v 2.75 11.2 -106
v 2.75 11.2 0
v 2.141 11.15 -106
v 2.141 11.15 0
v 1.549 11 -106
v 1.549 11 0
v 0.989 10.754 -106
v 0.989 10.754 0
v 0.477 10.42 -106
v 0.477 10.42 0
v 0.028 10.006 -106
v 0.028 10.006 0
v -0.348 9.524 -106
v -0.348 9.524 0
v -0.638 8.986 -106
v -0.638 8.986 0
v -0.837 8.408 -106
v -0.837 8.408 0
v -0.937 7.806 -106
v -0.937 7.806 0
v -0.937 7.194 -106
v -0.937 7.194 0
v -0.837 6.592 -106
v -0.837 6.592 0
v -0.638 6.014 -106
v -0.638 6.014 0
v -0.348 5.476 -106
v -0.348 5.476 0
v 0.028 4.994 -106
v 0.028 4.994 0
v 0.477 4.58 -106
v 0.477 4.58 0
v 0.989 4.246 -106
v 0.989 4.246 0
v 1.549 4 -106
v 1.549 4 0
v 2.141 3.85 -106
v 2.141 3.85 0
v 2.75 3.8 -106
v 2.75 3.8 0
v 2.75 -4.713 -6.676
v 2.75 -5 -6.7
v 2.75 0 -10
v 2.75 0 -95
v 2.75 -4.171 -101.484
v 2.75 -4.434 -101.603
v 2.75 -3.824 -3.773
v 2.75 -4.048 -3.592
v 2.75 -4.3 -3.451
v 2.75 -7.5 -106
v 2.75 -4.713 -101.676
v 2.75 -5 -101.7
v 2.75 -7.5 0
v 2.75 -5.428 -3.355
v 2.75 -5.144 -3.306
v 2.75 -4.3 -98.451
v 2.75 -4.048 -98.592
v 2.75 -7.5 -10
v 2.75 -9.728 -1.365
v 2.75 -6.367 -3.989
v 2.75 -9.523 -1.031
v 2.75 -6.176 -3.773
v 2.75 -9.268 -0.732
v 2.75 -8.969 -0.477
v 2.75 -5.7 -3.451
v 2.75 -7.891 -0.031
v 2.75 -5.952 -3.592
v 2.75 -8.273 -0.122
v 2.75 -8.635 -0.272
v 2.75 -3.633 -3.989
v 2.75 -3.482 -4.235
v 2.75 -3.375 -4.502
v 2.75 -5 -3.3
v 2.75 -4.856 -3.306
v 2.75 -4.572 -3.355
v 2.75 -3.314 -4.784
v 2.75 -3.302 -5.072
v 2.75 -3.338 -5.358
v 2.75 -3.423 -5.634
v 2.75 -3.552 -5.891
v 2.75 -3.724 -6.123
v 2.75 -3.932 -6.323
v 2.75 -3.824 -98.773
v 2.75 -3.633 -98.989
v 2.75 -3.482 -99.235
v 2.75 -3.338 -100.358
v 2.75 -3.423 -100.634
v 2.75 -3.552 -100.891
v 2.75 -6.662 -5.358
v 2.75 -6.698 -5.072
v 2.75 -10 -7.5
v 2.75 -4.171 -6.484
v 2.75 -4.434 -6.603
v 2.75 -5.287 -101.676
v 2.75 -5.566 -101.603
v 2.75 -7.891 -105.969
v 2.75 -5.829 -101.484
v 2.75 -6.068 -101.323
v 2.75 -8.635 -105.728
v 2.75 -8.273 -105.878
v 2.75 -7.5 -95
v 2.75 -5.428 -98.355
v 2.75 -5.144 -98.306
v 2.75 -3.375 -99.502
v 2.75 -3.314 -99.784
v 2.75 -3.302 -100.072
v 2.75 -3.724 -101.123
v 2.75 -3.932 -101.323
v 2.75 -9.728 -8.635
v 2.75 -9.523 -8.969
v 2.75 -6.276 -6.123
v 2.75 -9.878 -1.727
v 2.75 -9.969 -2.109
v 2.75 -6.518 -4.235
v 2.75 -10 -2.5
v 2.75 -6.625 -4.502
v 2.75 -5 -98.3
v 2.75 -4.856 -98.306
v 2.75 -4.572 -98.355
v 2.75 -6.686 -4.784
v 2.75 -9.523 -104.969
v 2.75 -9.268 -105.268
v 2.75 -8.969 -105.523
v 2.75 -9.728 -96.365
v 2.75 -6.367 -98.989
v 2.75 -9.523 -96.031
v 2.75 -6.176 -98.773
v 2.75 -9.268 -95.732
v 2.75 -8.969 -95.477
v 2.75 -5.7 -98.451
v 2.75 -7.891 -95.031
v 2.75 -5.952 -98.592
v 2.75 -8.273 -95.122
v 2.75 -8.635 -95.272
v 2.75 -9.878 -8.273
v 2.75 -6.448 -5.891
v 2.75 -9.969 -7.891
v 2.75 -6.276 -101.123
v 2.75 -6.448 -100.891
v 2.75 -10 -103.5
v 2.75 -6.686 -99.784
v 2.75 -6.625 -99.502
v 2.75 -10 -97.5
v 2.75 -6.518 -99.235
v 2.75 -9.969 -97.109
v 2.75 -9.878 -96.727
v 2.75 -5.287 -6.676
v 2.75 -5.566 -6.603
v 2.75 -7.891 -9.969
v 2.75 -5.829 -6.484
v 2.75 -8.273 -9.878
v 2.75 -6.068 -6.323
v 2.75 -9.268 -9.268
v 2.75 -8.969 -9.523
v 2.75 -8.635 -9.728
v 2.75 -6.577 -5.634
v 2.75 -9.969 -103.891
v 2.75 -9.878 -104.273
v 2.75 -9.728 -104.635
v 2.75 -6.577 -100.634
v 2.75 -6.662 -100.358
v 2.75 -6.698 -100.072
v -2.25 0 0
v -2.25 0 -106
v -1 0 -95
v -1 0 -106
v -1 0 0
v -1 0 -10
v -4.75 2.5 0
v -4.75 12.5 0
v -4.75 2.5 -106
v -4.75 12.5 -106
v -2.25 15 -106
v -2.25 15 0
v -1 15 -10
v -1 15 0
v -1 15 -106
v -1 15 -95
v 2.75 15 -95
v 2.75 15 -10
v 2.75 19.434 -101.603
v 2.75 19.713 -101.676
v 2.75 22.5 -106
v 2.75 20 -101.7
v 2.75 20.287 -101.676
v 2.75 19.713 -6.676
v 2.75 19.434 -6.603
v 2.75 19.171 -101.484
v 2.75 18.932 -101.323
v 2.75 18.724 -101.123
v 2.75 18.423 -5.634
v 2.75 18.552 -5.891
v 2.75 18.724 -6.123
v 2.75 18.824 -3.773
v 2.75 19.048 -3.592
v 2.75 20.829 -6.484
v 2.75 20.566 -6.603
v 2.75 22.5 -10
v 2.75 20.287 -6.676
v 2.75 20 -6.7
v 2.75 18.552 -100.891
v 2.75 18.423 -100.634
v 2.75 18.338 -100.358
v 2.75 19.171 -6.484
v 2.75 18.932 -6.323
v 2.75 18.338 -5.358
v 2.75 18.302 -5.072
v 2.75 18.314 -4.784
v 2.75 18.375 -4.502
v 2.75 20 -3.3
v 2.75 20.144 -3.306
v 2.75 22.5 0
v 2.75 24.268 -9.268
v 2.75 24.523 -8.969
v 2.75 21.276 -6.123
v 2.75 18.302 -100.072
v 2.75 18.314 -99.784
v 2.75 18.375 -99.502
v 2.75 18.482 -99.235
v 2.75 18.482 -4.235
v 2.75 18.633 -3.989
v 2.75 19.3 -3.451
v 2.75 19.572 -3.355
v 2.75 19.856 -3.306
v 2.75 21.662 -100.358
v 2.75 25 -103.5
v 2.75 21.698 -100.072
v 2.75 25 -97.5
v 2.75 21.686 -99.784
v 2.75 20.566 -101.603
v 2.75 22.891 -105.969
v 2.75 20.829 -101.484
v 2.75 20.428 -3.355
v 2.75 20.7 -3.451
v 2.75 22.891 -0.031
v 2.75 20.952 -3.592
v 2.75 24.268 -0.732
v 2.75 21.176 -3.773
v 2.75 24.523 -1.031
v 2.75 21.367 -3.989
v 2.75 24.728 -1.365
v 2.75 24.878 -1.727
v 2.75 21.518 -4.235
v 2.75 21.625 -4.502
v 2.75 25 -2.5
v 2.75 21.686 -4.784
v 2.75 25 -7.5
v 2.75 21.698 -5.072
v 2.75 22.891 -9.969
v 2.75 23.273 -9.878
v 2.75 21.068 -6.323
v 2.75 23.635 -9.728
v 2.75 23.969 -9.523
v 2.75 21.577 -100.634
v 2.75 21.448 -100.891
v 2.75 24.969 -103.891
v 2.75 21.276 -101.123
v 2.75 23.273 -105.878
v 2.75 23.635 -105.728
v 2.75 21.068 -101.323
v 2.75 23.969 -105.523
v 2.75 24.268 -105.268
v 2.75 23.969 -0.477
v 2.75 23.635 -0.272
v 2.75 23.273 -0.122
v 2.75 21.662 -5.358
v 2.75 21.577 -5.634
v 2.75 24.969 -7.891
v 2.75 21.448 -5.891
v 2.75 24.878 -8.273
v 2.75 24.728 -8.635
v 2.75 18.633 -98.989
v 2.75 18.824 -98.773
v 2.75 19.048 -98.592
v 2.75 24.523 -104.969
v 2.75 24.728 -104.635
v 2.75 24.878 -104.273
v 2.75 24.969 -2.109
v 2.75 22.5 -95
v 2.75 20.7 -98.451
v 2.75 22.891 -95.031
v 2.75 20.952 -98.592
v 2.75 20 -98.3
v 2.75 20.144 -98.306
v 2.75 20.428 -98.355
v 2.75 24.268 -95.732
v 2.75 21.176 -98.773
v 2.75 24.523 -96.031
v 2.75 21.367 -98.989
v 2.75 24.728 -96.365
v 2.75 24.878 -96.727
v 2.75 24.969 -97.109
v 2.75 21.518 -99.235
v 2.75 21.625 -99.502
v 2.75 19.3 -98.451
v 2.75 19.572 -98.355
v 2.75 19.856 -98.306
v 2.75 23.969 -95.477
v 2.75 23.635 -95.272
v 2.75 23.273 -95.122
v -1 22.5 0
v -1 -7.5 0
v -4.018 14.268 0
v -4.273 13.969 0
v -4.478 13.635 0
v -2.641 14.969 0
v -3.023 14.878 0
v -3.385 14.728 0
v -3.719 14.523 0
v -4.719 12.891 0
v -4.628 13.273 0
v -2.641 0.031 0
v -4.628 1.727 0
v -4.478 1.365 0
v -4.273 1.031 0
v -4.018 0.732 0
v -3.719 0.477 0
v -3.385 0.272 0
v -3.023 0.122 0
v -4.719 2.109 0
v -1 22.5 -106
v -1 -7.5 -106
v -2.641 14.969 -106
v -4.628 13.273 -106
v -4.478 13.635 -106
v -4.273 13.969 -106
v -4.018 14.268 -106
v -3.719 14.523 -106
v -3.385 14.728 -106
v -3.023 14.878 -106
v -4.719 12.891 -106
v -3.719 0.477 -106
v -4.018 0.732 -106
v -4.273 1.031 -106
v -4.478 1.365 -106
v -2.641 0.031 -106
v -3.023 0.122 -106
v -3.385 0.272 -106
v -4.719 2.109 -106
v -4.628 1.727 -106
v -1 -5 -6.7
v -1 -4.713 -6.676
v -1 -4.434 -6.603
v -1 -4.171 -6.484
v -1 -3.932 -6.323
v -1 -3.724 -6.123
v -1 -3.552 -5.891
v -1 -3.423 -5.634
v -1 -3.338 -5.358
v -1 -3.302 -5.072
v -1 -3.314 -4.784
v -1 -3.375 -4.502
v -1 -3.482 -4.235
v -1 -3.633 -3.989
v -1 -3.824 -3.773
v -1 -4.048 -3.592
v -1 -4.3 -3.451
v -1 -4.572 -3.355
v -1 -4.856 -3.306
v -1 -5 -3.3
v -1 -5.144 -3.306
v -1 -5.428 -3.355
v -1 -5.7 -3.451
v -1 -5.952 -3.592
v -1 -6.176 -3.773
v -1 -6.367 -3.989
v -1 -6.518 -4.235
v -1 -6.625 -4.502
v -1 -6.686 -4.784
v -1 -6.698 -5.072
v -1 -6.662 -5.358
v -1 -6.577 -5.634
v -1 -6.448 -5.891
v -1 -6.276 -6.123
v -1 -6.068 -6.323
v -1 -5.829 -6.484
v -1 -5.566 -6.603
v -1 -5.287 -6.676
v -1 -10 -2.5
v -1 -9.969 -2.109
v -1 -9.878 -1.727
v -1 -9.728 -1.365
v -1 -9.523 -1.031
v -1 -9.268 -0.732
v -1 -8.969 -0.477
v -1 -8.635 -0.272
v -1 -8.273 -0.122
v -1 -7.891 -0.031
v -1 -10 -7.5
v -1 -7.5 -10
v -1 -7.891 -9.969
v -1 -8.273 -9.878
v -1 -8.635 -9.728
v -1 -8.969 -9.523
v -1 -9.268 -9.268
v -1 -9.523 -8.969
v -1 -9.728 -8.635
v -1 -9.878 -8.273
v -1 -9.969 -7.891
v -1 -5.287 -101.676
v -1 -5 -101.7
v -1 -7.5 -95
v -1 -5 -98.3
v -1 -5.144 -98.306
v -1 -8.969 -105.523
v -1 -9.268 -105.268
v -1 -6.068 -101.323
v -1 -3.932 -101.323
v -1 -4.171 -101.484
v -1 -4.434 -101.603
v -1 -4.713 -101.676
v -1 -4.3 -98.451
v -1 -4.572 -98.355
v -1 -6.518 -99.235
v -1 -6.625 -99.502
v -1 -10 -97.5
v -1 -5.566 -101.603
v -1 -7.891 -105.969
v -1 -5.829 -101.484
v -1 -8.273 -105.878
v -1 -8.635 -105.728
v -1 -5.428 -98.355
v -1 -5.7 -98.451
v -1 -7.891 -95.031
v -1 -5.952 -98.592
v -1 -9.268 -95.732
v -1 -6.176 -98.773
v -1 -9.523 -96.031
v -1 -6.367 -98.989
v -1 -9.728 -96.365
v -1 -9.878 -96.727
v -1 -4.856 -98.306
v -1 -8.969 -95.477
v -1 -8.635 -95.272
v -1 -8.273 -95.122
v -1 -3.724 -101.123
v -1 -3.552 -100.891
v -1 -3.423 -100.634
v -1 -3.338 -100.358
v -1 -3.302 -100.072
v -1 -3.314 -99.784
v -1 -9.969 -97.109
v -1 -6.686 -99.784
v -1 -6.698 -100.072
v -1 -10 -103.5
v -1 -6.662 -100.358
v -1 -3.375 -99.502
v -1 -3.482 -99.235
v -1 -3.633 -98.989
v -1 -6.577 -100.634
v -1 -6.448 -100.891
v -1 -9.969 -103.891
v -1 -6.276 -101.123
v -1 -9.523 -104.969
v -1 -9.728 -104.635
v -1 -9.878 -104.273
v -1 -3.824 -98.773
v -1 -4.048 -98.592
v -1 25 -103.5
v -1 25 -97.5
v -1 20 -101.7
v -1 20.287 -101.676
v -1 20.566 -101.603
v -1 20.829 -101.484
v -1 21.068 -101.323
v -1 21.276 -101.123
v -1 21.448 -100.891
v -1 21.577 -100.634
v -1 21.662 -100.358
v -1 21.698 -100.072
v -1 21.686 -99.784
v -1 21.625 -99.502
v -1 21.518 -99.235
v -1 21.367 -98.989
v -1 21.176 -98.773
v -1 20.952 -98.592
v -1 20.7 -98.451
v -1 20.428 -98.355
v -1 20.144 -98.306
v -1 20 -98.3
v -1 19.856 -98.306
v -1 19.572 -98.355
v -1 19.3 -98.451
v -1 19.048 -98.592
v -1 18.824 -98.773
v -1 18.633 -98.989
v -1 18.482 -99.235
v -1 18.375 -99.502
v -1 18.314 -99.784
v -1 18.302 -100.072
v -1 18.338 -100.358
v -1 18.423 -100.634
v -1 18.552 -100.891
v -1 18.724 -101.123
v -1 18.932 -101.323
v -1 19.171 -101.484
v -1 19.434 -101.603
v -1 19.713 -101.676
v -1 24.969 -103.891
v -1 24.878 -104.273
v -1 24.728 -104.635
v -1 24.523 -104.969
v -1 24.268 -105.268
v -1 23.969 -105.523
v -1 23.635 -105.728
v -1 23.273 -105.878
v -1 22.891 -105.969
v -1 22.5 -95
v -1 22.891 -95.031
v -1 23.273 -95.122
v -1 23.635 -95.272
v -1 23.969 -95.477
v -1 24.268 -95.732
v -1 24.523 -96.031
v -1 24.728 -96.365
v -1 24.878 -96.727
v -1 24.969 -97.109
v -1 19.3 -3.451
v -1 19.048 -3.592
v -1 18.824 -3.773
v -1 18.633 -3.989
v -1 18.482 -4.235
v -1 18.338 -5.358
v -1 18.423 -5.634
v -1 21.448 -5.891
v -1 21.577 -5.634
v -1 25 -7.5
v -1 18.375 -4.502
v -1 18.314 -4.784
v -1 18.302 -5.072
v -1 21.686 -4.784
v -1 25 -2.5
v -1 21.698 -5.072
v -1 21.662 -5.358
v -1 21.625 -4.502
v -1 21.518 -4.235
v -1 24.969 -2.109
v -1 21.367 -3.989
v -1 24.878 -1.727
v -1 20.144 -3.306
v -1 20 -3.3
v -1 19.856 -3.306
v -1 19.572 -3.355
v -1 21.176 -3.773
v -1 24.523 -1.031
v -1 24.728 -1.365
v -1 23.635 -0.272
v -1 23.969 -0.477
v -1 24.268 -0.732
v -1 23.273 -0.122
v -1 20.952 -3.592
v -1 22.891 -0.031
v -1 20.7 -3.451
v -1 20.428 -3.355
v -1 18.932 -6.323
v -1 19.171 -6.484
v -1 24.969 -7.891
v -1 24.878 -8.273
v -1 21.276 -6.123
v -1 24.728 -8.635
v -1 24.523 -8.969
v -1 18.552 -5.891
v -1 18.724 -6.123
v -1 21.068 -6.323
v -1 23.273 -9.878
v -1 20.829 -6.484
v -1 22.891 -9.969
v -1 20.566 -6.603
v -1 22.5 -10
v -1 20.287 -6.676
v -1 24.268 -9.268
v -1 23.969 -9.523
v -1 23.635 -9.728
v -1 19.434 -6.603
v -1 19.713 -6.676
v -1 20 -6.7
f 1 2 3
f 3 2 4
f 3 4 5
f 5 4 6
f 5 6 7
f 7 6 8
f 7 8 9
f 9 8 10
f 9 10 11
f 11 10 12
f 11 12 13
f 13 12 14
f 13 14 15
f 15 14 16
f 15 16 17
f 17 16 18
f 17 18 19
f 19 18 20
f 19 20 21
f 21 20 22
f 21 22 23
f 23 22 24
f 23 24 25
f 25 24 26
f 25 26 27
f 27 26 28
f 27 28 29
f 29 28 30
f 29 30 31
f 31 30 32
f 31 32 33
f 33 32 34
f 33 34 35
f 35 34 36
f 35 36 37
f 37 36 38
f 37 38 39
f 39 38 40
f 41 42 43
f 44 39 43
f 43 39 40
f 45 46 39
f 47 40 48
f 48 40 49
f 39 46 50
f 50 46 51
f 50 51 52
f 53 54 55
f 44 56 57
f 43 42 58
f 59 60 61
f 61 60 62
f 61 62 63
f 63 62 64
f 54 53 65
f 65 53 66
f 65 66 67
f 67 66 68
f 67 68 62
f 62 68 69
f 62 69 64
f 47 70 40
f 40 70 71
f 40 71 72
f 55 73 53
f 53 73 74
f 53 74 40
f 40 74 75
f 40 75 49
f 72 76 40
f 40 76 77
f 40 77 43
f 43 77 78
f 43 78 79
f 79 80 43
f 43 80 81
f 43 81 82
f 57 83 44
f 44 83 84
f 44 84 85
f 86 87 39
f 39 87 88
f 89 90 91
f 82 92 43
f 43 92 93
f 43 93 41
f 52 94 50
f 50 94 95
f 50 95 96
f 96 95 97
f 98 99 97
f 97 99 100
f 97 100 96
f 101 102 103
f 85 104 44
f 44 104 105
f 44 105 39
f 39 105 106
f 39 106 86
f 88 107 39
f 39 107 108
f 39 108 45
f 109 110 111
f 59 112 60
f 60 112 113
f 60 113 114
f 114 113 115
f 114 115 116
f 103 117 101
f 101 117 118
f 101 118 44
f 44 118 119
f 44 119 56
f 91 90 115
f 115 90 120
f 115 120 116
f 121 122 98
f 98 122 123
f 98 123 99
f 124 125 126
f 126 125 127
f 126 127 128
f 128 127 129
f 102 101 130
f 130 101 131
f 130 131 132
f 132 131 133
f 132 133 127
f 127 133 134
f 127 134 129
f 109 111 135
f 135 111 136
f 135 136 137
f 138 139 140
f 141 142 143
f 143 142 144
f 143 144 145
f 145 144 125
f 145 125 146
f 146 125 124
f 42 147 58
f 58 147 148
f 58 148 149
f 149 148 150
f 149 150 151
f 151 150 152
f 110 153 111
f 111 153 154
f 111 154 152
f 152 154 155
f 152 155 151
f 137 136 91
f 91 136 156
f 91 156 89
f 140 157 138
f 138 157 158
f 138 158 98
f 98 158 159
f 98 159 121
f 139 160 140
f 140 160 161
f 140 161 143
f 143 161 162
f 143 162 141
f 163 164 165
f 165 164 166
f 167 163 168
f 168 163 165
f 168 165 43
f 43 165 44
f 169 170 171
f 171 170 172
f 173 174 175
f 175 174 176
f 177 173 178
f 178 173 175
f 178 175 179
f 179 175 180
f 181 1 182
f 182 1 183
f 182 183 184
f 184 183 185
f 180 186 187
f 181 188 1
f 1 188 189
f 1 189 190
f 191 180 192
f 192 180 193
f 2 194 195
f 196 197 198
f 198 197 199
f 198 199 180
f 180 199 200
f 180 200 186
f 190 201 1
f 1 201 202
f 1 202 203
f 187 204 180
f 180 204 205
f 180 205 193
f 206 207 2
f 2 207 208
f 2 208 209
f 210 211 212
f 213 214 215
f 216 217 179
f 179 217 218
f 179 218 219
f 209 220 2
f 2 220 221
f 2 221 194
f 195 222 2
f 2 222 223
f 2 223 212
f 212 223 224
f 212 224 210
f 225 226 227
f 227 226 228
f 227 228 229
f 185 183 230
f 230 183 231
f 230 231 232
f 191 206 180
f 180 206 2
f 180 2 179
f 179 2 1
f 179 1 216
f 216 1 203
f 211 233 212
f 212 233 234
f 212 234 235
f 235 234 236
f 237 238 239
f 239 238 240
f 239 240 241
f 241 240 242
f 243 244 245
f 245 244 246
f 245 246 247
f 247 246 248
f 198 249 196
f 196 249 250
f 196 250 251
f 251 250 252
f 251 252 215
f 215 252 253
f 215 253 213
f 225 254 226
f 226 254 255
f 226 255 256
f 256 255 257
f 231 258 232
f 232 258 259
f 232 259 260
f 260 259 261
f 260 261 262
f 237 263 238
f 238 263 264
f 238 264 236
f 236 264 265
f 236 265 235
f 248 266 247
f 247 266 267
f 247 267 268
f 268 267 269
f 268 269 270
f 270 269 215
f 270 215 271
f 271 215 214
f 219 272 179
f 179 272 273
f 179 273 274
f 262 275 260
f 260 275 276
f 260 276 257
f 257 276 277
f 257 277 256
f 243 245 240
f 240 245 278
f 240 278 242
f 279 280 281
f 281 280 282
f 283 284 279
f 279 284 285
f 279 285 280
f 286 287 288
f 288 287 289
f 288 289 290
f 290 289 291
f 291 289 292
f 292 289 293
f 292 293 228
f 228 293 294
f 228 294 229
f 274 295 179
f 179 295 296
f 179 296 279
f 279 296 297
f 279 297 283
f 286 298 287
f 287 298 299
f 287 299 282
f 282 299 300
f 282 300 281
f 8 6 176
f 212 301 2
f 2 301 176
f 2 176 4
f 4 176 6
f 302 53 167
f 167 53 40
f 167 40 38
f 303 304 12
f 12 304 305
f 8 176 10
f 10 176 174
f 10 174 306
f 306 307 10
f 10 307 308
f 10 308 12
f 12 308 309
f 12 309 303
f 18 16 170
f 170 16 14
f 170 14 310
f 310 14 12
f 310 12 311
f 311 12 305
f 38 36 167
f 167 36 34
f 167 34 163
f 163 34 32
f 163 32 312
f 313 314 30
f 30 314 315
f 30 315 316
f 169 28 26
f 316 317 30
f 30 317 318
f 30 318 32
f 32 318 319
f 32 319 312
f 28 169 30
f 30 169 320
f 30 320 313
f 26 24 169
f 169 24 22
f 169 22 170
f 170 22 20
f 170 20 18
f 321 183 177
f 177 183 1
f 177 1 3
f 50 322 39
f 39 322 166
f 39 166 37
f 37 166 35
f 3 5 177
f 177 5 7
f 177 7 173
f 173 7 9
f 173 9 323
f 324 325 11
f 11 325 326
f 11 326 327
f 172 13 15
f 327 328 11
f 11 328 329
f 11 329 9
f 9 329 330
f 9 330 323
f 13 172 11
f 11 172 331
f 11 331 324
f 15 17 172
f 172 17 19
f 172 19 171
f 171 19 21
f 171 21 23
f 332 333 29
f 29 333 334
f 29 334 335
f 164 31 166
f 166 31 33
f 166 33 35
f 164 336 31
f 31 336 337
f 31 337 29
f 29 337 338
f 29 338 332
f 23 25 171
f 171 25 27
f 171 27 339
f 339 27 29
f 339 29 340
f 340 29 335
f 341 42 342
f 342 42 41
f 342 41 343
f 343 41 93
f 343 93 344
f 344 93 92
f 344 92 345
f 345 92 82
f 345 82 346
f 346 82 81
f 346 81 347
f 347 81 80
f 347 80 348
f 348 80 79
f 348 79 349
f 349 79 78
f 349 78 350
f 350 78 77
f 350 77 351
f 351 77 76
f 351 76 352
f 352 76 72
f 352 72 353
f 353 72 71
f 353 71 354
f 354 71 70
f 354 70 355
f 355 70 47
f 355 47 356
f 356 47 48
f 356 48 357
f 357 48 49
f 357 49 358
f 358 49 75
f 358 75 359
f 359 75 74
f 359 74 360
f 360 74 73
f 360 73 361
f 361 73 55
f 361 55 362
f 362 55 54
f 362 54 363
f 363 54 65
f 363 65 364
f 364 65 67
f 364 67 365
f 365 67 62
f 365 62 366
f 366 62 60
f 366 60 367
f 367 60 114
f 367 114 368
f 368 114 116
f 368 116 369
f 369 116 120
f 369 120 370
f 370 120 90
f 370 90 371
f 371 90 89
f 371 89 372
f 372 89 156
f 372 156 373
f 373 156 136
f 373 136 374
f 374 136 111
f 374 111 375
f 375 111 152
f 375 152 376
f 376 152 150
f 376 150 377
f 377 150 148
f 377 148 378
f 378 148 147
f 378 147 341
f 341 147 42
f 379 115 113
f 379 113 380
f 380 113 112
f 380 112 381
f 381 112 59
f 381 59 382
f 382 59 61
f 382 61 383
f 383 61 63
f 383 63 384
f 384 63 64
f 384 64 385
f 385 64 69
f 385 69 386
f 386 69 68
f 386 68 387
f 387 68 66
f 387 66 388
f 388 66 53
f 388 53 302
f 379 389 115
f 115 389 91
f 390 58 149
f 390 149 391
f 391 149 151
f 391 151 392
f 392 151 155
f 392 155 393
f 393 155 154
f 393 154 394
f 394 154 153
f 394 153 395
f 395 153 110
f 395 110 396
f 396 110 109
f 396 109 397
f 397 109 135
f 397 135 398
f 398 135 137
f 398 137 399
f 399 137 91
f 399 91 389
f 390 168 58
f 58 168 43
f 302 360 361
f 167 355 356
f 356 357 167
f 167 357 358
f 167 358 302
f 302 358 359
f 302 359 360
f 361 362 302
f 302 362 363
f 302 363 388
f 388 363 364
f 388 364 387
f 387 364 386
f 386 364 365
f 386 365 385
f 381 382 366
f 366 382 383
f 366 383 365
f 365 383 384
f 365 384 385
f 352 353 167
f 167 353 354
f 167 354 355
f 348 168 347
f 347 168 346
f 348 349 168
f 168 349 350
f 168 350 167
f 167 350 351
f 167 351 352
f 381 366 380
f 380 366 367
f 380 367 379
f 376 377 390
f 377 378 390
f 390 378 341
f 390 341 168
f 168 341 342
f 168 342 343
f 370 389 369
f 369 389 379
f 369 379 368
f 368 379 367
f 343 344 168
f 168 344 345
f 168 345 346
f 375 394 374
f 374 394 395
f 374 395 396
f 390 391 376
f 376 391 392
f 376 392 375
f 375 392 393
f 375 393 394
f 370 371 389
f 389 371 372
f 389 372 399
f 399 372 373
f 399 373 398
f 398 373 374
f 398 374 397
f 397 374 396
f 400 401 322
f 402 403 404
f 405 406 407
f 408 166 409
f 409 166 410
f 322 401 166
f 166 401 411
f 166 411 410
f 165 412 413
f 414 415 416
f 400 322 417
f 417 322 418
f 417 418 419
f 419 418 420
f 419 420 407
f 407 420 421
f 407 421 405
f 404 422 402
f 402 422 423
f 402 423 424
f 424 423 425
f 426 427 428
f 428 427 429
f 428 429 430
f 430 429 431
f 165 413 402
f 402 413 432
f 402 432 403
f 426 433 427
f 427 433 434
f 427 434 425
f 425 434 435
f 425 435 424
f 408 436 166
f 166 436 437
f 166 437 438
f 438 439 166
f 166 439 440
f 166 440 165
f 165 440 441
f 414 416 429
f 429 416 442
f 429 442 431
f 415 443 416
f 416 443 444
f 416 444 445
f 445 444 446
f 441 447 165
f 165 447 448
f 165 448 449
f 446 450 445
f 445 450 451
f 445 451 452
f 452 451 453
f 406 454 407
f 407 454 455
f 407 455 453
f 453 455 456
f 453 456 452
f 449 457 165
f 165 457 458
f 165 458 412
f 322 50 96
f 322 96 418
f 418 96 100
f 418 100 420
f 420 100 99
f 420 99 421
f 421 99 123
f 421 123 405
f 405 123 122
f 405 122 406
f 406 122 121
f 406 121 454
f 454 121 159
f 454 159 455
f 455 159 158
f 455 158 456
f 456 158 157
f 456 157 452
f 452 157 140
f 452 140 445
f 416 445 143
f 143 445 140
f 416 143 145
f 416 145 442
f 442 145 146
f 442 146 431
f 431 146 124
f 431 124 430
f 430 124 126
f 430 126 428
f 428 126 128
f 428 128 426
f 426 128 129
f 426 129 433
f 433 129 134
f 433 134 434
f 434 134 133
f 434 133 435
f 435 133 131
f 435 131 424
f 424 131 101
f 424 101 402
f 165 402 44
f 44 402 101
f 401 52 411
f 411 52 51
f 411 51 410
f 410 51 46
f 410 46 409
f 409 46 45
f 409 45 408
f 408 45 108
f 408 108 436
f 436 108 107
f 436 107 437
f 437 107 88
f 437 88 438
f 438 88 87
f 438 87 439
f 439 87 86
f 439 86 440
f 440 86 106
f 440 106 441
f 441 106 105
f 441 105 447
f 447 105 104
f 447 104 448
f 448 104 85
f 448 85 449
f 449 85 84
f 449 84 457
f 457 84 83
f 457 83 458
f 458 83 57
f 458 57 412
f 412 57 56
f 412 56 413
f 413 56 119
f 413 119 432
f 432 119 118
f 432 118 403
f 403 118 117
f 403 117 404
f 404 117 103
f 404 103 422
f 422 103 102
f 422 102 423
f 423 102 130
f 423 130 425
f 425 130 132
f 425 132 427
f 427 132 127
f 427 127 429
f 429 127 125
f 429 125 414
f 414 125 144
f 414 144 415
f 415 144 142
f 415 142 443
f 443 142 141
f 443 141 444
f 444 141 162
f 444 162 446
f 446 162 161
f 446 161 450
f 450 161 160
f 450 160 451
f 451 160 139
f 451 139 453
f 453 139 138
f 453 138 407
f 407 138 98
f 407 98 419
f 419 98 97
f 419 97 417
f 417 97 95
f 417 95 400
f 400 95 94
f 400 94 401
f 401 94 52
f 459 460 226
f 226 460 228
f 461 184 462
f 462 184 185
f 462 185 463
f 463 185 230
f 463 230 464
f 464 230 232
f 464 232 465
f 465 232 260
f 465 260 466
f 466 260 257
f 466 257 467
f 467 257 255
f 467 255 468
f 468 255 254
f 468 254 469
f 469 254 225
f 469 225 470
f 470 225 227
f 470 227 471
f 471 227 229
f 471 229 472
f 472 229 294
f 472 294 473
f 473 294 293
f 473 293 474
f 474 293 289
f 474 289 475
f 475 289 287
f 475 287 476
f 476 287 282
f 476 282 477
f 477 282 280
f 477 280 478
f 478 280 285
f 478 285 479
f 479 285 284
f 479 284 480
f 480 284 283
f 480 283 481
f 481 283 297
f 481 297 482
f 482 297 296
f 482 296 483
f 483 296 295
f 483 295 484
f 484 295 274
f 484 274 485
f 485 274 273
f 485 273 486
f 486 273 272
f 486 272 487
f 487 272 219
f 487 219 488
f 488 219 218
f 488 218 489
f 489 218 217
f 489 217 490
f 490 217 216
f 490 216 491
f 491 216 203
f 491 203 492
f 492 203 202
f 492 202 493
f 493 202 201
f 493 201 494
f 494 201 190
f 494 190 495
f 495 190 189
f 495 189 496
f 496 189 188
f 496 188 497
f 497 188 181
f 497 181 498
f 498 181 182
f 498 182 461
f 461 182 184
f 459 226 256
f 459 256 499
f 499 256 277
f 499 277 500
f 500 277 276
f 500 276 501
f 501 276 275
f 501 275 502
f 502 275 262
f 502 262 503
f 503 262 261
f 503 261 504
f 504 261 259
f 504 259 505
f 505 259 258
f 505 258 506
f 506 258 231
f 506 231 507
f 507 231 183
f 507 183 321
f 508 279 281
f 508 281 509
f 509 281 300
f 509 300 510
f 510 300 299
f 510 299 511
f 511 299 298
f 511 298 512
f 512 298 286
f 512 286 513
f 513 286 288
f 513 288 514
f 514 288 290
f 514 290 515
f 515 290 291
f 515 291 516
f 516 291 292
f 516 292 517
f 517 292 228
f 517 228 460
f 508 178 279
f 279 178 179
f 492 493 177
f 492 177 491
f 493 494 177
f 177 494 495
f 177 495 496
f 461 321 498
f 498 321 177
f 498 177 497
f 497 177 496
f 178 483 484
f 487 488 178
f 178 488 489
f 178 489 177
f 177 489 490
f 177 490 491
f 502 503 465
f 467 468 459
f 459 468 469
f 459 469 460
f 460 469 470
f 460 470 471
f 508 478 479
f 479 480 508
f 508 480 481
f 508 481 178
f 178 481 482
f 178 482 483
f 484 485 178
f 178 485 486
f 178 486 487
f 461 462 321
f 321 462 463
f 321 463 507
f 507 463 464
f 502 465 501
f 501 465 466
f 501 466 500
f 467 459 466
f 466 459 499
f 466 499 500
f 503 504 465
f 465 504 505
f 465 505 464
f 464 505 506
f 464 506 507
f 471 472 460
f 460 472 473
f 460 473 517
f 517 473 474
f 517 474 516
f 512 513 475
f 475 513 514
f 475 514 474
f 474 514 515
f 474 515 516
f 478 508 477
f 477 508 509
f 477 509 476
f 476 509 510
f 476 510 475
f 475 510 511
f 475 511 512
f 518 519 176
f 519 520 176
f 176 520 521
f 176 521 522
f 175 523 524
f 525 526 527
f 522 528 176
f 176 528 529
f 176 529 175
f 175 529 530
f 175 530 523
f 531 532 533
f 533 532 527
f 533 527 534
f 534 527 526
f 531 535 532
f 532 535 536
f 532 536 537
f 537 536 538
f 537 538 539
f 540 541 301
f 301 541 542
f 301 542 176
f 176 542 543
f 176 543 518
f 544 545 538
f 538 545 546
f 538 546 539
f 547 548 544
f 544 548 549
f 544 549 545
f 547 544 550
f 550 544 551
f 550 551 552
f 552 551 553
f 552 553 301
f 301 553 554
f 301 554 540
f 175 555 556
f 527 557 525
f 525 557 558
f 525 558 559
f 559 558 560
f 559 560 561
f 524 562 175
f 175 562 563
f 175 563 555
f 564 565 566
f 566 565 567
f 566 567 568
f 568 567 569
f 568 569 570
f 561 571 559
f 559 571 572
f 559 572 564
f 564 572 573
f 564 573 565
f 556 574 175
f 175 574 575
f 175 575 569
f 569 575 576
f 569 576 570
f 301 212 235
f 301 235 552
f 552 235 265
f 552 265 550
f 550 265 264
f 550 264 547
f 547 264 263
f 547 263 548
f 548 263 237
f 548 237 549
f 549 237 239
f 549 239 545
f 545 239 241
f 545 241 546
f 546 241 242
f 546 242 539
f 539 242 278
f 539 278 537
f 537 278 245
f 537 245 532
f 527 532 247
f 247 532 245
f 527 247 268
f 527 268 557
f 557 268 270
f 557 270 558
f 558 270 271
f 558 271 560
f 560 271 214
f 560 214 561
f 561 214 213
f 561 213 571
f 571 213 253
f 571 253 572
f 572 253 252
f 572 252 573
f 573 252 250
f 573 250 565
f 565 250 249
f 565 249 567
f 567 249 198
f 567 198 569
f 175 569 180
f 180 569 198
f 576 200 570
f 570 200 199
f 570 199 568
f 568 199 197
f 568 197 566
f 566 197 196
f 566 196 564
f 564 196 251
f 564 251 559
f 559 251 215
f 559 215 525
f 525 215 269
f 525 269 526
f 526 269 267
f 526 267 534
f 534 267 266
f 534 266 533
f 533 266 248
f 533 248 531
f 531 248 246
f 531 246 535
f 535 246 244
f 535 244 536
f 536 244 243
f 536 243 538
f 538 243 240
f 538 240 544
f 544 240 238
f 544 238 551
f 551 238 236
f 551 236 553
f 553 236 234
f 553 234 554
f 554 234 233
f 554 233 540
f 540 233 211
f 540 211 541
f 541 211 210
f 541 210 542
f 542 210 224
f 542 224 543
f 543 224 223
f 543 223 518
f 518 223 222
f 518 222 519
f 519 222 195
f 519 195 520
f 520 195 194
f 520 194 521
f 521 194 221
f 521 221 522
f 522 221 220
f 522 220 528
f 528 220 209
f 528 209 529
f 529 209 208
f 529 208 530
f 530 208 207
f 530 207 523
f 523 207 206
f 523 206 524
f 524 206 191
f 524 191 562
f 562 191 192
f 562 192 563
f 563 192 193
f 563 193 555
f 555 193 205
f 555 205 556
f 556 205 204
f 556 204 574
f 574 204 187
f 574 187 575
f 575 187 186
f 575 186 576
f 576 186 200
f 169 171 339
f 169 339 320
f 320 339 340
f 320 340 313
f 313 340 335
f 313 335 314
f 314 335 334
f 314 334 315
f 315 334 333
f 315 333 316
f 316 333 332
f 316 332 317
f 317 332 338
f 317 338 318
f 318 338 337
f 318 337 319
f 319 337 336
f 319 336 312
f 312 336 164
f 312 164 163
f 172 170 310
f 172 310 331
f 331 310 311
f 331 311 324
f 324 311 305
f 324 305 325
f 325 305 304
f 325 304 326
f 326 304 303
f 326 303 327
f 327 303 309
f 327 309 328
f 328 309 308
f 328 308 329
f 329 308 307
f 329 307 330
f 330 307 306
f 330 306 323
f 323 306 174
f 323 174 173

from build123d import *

# Parameters (mm, degrees)
BOSS_EXTRUDE1_DEPTH = 106
SKETCH3_R           = 1.7
BOSS_EXTRUDE2_DEPTH = 3.75
FILLET1_R           = 2.5


with BuildPart() as part:
    # Sketch2 → Boss-Extrude1 (new body)
    with BuildSketch(Plane.XY):
        with BuildLine():
            Line((2.75, 11.2), (2.75, 15))
            Line((2.75, 15), (-4.75, 15))
            Line((-4.75, 15), (-4.75, 0))
            Line((-4.75, 0), (2.75, 0))
            Line((2.75, 0), (2.75, 3.8))
            ThreePointArc((2.75, 3.8), (-0.95, 7.5), (2.75, 11.2))
        make_face()
    extrude(amount=-BOSS_EXTRUDE1_DEPTH)

    # Sketch3 → Boss-Extrude2 (add)
    # profile 1 of 2: a face of its own
    with BuildSketch(Plane.ZY.offset(-2.75)):
        with BuildLine():
            Line((-103.5, -10), (-97.5, -10))
            ThreePointArc((-97.5, -10), (-95.732233047, -9.267766953), (-95, -7.5))
            Line((-95, -7.5), (-95, 0))
            Line((-95, 0), (-10, 0))
            Line((-10, 0), (-10, -7.5))
            ThreePointArc((-10, -7.5), (-9.267766953, -9.267766953), (-7.5, -10))
            Line((-7.5, -10), (-2.5, -10))
            ThreePointArc((-2.5, -10), (-0.732233047, -9.267766953), (0, -7.5))
            Line((0, -7.5), (0, 3.8))
            Line((0, 3.8), (-106, 3.8))
            Line((-106, 3.8), (-106, -7.5))
            ThreePointArc((-106, -7.5), (-105.267766953, -9.267766953), (-103.5, -10))
        make_face()
        with Locations((-5, -5)):
            Circle(SKETCH3_R, mode=Mode.SUBTRACT)
        with Locations((-100, -5)):
            Circle(SKETCH3_R, mode=Mode.SUBTRACT)
    # profile 2 of 2: a face of its own
    with BuildSketch(Plane.ZY.offset(-2.75)):
        with BuildLine():
            Line((-106, 11.2), (0, 11.2))
            Line((0, 11.2), (0, 22.5))
            ThreePointArc((0, 22.5), (-0.732233047, 24.267766953), (-2.5, 25))
            Line((-2.5, 25), (-7.5, 25))
            ThreePointArc((-7.5, 25), (-9.267766953, 24.267766953), (-10, 22.5))
            Line((-10, 22.5), (-10, 15))
            Line((-10, 15), (-95, 15))
            Line((-95, 15), (-95, 22.5))
            ThreePointArc((-95, 22.5), (-95.732233047, 24.267766953), (-97.5, 25))
            Line((-97.5, 25), (-103.5, 25))
            ThreePointArc((-103.5, 25), (-105.267766953, 24.267766953), (-106, 22.5))
            Line((-106, 22.5), (-106, 11.2))
        make_face()
        with Locations((-5, 20)):
            Circle(SKETCH3_R, mode=Mode.SUBTRACT)
        with Locations((-100, 20)):
            Circle(SKETCH3_R, mode=Mode.SUBTRACT)
    extrude(amount=BOSS_EXTRUDE2_DEPTH)

    # Fillet1
    fillet1_edges = [part.edges().sort_by_distance(p)[0] for p in [
        (-4.75, 0, -53),
        (-4.75, 15, -53),
    ]]
    fillet(fillet1_edges, radius=FILLET1_R)


solid = part.part
